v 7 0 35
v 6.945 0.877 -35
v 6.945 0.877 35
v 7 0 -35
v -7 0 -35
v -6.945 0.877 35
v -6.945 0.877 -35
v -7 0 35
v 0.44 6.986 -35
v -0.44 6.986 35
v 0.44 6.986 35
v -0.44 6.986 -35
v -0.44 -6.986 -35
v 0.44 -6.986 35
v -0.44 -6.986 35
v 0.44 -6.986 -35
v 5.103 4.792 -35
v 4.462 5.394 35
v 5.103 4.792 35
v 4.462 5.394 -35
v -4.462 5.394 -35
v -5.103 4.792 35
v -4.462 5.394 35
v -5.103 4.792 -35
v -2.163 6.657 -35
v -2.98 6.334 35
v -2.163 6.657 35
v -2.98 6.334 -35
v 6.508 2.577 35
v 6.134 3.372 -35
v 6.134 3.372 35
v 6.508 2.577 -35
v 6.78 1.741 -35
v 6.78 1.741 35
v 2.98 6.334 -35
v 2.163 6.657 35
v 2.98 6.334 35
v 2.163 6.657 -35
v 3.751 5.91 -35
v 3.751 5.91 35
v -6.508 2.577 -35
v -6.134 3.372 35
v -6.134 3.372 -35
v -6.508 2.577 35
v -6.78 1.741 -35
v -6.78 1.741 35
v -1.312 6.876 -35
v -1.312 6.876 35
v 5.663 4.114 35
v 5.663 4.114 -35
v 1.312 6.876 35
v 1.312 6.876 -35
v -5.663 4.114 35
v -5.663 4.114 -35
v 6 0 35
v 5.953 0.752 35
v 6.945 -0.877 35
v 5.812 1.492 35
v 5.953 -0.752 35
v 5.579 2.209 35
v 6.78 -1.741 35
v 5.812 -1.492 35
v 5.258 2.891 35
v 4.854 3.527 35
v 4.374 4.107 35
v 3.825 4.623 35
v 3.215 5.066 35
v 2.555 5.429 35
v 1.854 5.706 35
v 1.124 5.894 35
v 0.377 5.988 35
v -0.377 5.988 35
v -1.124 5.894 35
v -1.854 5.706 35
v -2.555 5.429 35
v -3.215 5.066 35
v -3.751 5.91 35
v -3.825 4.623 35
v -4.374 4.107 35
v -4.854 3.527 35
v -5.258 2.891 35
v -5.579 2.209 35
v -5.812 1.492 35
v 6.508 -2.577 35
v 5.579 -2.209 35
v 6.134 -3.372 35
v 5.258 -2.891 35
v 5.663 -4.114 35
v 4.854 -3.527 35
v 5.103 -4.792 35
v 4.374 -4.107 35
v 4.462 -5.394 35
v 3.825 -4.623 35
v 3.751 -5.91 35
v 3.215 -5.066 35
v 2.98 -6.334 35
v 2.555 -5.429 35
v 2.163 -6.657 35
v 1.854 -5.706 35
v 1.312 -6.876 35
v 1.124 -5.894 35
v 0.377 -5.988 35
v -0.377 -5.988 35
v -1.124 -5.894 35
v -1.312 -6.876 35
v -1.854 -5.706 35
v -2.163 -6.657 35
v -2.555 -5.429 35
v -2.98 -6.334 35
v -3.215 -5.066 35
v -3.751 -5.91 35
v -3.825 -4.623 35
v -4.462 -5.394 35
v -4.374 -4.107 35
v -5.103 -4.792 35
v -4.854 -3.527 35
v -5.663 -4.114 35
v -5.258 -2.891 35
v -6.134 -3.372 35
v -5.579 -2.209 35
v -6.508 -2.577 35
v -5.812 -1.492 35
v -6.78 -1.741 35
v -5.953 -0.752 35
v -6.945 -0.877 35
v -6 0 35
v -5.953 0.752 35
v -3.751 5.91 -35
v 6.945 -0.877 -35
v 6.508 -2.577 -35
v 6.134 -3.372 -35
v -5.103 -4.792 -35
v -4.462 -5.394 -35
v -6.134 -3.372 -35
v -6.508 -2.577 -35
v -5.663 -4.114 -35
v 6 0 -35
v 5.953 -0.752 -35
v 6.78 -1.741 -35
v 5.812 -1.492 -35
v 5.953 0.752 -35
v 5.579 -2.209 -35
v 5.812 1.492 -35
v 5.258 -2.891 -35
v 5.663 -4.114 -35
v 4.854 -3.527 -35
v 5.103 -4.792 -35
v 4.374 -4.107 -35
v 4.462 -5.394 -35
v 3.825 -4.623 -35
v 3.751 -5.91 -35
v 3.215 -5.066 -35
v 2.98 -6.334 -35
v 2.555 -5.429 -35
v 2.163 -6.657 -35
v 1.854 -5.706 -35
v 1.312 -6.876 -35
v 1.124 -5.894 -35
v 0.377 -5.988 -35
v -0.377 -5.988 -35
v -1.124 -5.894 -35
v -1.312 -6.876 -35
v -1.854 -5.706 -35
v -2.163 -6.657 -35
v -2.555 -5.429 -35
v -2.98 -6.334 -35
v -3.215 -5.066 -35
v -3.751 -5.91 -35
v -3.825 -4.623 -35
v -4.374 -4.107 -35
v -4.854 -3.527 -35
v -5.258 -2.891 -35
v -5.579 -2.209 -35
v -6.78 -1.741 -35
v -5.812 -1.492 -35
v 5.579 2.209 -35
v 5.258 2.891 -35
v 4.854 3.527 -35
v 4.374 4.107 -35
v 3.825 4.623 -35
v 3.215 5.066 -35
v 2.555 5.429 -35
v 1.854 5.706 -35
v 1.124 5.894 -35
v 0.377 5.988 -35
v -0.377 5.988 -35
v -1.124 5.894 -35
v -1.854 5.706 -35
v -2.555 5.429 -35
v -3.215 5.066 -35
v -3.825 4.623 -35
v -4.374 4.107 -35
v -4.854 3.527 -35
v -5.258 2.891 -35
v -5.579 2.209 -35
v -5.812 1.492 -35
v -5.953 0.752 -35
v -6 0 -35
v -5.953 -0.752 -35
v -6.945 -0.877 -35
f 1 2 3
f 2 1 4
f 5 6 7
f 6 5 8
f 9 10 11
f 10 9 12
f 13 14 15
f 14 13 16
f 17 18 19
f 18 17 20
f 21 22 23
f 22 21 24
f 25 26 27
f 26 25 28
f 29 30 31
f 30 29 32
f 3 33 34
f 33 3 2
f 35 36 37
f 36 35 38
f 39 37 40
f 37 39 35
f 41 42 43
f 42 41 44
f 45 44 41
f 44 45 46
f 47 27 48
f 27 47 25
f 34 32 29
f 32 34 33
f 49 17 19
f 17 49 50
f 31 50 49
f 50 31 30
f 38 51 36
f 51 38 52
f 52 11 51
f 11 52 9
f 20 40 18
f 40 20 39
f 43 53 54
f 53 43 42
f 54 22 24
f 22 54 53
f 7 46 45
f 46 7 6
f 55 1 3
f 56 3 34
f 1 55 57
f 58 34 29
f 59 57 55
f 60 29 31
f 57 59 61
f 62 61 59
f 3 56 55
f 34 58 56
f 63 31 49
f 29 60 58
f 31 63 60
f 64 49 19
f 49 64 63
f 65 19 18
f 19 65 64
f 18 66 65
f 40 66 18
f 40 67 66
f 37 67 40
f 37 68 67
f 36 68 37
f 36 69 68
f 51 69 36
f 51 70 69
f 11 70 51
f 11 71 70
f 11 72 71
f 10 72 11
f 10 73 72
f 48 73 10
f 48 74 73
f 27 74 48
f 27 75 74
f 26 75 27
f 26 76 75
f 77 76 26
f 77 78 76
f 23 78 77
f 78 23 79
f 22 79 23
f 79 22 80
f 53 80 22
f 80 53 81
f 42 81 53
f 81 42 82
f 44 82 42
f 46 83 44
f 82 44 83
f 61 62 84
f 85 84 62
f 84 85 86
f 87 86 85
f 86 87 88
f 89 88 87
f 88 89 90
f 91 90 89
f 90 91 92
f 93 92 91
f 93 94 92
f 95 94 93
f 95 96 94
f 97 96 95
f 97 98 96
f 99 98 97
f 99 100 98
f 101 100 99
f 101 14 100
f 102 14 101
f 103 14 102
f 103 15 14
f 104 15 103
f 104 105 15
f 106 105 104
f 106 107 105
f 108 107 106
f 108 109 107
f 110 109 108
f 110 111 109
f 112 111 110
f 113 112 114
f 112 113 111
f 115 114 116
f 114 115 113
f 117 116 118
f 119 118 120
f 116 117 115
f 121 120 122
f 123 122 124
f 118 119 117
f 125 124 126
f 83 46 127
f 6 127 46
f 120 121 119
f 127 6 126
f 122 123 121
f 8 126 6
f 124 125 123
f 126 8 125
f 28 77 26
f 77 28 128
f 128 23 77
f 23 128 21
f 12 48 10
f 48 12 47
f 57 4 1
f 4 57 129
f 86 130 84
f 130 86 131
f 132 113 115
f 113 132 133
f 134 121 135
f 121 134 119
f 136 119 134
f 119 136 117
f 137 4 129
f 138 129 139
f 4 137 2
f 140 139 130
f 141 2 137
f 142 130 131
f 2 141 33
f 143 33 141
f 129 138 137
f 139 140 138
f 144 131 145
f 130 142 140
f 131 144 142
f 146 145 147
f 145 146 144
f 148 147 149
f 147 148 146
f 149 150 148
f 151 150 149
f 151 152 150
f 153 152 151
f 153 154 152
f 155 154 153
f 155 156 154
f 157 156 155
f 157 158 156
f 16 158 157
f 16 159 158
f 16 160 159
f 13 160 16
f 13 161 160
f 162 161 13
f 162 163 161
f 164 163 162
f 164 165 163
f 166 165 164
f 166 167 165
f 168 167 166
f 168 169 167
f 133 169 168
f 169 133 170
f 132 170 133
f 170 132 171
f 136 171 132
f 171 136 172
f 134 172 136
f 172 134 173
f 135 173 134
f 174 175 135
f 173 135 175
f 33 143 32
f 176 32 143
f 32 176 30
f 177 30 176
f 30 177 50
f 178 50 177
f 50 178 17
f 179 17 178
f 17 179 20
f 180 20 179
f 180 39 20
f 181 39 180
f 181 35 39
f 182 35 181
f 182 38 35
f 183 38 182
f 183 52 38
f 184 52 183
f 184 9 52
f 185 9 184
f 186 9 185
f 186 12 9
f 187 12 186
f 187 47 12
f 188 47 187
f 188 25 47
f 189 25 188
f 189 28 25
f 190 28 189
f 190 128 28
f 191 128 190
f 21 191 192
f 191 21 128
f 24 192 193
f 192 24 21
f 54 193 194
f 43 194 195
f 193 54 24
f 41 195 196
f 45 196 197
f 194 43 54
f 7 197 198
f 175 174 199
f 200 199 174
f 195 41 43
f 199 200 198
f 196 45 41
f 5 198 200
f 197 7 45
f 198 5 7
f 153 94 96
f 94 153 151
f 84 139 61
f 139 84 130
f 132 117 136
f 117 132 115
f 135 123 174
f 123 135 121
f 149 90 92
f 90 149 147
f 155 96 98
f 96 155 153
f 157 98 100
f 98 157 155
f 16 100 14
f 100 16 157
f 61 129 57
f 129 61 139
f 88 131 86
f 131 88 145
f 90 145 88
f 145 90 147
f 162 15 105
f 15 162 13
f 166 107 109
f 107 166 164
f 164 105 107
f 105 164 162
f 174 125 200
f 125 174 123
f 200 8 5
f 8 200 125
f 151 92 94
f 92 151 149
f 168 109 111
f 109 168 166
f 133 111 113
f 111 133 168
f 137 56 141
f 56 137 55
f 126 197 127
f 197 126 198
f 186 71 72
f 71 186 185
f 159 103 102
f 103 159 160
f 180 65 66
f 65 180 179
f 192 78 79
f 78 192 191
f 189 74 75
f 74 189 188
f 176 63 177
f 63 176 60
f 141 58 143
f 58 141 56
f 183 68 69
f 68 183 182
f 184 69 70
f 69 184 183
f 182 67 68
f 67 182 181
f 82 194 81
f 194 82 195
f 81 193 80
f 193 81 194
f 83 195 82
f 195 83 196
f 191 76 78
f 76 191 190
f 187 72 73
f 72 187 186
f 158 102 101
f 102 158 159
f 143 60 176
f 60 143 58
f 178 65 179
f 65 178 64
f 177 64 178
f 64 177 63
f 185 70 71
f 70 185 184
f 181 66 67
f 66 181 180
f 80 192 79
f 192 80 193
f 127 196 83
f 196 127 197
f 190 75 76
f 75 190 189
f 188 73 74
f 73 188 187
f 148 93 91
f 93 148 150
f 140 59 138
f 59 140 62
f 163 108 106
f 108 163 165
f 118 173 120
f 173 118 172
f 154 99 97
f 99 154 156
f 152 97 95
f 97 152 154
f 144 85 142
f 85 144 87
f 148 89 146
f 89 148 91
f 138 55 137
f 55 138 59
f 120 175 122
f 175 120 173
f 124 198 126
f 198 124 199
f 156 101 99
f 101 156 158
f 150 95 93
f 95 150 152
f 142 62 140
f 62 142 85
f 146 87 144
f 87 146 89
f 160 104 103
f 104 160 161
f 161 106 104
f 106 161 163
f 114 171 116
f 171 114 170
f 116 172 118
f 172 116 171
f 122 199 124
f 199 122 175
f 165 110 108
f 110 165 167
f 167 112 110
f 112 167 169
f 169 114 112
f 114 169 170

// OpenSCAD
$fn = 50;


difference() {
	union() {
		translate(v = [0, 0, -35.0000000000]) {
			cylinder(h = 70, r = 7.0000000000);
		}
	}
	union() {
		translate(v = [0, 0, -100.0000000000]) {
			cylinder(h = 200, r = 6);
		}
	}
}
